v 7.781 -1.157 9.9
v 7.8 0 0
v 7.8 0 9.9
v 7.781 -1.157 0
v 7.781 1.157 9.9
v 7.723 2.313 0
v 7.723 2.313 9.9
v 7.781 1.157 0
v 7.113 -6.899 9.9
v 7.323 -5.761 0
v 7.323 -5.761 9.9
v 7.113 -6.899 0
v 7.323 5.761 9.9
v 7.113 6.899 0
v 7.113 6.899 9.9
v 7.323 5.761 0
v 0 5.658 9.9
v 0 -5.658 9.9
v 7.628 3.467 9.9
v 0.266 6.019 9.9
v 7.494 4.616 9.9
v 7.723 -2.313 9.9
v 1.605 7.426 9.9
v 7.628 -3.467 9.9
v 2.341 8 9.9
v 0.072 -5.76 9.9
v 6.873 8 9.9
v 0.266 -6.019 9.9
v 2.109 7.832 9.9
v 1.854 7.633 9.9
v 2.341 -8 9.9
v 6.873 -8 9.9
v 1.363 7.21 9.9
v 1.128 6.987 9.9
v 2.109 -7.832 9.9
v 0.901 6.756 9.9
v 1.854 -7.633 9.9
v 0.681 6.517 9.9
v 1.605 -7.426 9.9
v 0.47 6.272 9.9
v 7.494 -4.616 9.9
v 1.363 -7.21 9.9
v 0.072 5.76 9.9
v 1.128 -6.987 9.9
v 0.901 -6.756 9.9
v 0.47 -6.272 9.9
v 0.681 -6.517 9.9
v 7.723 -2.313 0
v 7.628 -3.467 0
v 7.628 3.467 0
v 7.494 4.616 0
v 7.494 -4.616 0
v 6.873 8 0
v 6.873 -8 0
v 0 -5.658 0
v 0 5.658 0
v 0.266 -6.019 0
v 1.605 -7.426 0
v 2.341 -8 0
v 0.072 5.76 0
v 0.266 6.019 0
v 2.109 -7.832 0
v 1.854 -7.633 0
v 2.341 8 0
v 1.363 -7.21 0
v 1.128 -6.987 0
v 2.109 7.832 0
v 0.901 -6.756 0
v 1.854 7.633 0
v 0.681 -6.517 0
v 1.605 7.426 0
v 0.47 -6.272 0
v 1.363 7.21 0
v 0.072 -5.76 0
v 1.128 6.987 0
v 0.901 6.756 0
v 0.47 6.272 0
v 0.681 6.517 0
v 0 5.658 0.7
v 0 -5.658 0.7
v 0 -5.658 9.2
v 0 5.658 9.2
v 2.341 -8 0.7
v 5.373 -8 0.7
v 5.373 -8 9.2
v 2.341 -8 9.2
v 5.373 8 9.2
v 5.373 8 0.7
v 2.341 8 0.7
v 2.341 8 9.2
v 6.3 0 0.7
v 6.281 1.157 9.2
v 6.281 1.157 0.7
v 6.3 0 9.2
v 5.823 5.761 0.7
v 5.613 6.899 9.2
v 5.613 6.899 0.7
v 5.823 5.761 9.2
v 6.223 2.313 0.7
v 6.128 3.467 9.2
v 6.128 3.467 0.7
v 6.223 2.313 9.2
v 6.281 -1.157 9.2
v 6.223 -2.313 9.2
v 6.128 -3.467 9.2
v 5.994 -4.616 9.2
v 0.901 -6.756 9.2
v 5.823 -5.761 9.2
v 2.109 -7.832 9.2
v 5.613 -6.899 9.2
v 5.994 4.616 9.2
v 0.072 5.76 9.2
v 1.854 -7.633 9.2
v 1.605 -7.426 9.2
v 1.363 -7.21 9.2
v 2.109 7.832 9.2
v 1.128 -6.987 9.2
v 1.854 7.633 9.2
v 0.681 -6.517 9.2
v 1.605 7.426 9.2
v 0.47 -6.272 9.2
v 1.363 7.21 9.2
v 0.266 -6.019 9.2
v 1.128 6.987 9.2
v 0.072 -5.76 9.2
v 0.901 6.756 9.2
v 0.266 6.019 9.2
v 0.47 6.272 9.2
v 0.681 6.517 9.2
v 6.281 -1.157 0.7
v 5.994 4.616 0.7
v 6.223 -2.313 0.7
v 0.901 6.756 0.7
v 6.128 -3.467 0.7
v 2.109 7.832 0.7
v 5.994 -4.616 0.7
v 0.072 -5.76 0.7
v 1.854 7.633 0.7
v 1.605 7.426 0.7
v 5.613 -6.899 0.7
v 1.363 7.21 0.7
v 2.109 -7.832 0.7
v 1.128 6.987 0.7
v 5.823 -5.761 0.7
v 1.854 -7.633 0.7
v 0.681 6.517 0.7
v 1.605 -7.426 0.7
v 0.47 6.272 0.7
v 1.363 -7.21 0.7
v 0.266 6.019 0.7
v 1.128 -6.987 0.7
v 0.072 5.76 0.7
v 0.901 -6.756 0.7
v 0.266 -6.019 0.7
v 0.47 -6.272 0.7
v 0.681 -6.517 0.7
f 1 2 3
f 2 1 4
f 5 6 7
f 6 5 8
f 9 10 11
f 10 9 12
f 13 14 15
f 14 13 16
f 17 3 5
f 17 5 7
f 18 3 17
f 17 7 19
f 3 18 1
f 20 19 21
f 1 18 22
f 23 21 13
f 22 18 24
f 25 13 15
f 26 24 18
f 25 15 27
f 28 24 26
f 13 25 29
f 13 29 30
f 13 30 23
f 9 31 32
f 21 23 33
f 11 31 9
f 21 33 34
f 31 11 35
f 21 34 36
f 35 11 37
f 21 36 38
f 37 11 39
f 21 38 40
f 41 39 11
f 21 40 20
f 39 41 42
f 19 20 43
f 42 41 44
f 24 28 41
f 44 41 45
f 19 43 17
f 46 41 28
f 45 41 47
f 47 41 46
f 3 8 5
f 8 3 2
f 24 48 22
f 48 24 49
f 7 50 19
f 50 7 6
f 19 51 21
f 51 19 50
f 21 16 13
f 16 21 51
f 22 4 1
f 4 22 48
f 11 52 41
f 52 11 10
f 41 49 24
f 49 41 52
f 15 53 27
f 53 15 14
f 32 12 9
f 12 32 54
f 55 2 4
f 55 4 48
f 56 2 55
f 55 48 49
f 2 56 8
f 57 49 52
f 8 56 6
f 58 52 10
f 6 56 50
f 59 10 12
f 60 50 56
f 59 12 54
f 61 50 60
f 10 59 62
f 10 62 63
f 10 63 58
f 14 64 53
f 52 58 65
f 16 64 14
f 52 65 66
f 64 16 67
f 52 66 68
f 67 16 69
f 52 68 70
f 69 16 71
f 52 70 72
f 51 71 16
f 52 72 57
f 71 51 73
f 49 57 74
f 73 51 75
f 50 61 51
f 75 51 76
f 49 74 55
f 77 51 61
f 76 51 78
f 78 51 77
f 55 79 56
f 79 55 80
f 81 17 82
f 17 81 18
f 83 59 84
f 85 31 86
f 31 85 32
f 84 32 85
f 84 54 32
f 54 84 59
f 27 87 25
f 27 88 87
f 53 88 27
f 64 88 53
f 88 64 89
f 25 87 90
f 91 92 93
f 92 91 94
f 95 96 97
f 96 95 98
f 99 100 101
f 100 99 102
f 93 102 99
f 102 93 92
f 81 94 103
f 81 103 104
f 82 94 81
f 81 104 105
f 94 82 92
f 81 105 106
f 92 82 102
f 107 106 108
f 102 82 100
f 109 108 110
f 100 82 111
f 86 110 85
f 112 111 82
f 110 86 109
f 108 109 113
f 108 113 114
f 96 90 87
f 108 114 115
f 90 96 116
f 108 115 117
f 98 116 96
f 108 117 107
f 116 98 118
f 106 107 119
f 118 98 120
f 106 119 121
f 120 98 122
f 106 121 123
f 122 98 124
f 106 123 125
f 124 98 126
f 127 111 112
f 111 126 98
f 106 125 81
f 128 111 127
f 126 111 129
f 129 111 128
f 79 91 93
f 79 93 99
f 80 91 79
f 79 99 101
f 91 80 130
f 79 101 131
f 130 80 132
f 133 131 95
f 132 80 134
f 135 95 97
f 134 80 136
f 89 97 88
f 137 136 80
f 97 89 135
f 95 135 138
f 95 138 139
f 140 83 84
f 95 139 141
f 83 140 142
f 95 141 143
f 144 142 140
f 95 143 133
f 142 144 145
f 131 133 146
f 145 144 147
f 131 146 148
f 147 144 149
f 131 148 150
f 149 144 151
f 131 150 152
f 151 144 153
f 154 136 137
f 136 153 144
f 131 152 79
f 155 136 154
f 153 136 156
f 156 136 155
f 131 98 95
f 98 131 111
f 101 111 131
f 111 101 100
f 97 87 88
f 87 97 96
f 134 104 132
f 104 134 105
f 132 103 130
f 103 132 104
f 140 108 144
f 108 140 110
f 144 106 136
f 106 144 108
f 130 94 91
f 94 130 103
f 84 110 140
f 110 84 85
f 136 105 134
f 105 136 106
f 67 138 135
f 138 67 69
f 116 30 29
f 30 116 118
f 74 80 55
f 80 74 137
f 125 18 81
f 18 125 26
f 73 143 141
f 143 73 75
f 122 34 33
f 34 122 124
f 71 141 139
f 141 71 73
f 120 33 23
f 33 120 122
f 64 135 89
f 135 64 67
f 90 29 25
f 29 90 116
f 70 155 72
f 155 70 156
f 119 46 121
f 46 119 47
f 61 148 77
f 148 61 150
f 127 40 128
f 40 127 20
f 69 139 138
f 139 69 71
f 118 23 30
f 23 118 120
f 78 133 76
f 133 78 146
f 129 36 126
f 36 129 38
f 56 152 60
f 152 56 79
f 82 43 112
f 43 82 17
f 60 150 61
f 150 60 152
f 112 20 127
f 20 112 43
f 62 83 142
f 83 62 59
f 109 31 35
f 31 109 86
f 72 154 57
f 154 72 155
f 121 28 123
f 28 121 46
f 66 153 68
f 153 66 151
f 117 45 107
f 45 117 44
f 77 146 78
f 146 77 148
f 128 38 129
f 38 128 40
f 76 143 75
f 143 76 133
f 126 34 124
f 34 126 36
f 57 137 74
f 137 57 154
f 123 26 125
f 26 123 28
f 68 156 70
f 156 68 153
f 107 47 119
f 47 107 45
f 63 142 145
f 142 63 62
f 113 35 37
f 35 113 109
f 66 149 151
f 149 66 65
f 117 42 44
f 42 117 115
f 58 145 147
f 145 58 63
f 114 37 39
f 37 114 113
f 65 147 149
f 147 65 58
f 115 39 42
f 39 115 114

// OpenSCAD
$fn=190;
$roll_diam=70;
$clip_width=9.9;
$clip_length=16;
$clip_height=7.8;
$fin_width=0.7;
$top_height=1.5;
intersection() {
    difference() {
        intersection() {

        translate([-($roll_diam/2)+$clip_height, 0, 0])
        cylinder($clip_width, $roll_diam/2, $roll_diam/2);

        translate([0, -($clip_length/2), 0])
        cube([$clip_height,$clip_length,$clip_width]);    
        }
        
        translate([-($roll_diam/2)+$clip_height-$top_height, 0, $fin_width])
        cylinder($clip_width-($fin_width*2), $roll_diam/2, $roll_diam/2);

    }
  translate([8, 0, 0])
  cylinder(10, $clip_height+2, $clip_height+2);
}
